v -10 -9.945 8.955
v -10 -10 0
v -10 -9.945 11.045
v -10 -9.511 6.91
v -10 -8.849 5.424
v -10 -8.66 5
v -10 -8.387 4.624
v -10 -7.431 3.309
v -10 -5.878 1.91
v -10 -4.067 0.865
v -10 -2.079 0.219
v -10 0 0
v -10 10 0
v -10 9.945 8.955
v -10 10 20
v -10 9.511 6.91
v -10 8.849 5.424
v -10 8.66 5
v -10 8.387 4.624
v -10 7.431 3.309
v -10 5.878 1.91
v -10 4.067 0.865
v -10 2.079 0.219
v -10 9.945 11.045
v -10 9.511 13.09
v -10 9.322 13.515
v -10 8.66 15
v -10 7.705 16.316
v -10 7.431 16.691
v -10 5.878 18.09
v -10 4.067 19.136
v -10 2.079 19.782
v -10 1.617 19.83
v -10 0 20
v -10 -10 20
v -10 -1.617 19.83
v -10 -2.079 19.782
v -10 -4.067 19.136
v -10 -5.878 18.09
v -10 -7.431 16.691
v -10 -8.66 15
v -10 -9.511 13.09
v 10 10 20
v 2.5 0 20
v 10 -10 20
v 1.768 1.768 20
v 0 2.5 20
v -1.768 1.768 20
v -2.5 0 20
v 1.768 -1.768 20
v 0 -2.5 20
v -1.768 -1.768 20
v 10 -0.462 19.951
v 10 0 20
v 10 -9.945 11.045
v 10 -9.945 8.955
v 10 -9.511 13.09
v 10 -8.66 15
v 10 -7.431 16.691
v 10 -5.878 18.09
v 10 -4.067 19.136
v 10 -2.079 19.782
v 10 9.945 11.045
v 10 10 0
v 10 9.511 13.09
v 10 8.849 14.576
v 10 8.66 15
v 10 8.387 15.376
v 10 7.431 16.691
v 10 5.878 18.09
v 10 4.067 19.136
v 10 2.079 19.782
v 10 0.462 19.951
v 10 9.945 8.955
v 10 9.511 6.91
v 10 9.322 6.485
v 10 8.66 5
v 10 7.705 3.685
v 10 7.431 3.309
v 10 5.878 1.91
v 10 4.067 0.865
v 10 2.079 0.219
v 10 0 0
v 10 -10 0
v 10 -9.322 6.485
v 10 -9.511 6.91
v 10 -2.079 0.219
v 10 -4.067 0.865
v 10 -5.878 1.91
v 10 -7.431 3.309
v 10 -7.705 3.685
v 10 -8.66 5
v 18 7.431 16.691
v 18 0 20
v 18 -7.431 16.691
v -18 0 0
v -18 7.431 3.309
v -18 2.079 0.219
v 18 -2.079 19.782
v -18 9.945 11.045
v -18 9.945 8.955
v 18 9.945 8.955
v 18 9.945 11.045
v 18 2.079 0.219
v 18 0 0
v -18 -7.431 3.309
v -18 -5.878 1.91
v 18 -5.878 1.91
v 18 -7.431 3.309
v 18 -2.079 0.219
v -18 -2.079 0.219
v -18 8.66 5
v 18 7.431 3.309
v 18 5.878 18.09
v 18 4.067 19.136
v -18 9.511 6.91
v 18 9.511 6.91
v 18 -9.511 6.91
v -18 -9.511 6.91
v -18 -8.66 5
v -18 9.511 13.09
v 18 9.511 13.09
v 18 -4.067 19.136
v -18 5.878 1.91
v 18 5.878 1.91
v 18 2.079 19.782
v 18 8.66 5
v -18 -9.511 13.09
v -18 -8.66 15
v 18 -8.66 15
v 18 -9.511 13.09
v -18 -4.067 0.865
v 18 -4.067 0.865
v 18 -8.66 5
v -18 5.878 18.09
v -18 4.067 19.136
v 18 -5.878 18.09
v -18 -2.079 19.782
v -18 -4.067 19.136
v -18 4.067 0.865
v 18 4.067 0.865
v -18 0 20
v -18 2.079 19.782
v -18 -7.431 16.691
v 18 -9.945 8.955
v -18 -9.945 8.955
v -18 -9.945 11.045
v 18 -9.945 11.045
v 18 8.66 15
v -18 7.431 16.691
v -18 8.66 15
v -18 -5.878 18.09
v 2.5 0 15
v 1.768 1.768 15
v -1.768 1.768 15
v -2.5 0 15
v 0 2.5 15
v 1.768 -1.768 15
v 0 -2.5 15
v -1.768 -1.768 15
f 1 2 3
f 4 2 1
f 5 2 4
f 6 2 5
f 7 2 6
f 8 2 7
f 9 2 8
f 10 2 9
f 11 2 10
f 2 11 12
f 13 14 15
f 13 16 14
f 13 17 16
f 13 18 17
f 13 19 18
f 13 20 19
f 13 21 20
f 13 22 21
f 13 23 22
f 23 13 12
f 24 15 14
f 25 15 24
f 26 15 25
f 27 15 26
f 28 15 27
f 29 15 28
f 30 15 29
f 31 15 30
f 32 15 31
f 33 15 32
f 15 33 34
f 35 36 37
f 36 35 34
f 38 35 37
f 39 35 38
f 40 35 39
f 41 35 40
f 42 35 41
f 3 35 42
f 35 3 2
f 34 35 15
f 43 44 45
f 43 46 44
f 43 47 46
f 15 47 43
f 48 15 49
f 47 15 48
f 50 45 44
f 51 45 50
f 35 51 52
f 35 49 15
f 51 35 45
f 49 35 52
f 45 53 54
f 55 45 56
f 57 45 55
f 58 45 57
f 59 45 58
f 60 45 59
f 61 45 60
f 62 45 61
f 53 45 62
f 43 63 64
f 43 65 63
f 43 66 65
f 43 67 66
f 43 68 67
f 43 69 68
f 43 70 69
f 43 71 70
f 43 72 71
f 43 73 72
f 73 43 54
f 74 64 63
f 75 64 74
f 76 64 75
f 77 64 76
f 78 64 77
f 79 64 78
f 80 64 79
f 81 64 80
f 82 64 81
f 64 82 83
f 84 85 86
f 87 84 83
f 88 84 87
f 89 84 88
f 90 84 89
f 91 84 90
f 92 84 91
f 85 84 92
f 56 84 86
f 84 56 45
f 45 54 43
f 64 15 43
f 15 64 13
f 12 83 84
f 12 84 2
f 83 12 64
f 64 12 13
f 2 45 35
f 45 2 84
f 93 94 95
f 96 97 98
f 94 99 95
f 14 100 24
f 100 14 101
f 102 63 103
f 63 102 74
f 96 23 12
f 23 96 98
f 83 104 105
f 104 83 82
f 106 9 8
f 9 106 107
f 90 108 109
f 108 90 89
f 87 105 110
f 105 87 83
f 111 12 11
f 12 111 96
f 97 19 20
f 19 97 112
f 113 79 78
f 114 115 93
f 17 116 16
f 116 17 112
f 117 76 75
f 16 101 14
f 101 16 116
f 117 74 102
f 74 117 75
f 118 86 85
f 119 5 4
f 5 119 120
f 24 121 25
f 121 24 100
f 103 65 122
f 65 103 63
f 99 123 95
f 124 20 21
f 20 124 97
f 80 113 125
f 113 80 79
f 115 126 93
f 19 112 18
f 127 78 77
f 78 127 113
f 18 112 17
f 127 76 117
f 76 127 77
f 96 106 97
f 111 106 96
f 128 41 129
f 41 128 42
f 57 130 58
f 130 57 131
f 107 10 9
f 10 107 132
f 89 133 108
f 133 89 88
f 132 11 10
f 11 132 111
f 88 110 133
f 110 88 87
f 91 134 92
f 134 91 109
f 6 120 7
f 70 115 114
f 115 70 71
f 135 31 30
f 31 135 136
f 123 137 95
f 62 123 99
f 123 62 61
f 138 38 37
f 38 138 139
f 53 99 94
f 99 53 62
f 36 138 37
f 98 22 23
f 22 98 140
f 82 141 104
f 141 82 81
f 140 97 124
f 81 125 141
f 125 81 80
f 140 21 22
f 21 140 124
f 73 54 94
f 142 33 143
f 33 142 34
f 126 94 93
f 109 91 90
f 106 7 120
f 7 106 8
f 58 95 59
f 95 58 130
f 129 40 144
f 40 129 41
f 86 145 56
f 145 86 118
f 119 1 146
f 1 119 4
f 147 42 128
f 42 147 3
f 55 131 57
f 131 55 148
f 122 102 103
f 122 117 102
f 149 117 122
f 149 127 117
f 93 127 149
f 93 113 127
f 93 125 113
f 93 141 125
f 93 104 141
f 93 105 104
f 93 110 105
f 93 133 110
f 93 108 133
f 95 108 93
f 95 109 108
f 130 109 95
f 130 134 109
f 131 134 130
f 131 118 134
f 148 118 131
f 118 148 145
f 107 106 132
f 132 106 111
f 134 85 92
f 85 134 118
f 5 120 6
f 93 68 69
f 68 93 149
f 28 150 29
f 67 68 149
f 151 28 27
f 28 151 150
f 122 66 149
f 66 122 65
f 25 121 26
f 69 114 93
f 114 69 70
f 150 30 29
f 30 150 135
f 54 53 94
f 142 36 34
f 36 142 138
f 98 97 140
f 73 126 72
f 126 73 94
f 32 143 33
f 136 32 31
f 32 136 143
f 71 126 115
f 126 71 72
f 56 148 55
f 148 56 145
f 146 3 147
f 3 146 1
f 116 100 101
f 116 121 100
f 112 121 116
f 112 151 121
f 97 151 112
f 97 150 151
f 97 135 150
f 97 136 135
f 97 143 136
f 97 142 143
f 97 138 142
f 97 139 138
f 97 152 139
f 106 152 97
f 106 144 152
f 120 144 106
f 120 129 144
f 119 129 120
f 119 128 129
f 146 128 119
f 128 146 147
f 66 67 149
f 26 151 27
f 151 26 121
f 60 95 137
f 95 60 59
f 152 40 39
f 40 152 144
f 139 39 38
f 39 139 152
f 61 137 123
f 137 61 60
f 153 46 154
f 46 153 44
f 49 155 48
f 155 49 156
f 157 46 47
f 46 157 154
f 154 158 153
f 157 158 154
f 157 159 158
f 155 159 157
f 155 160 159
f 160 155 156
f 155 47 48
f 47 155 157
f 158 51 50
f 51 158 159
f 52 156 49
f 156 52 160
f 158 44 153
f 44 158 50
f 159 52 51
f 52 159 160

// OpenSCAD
cube_size = 20; // [10:Small,20:Medium,30:Large]

hole_diameter = 5; 
hole_radius = hole_diameter/2;

// How deep should the center hole be?
hole_depth = 5; // [0,1,5,50]

show_wheels = "yes"; // [yes,no]

// How thick should the side wheels be?
wheel_thickness = 8; // [1:40]

// ignore this variable!
// foo=1;

// don't turn functions into params!
function BEZ03(u) = pow((1-u), 3);

// ignore variable values
bing = 3+4;
baz = 3 / hole_depth;

difference() {
  union() {
    translate([0, 0, cube_size/2]) cube([cube_size,cube_size,cube_size], center=true);
    if (show_wheels == "yes") {
      translate([0, 0, cube_size/2]) rotate([0, 90, 0]) {
        cylinder(r=cube_size/2, h=cube_size+(wheel_thickness*2), center=true);
      }
    }
  }
  translate([0, 0, cube_size-hole_depth]) cylinder(r=hole_radius, h=hole_depth);
}
        
